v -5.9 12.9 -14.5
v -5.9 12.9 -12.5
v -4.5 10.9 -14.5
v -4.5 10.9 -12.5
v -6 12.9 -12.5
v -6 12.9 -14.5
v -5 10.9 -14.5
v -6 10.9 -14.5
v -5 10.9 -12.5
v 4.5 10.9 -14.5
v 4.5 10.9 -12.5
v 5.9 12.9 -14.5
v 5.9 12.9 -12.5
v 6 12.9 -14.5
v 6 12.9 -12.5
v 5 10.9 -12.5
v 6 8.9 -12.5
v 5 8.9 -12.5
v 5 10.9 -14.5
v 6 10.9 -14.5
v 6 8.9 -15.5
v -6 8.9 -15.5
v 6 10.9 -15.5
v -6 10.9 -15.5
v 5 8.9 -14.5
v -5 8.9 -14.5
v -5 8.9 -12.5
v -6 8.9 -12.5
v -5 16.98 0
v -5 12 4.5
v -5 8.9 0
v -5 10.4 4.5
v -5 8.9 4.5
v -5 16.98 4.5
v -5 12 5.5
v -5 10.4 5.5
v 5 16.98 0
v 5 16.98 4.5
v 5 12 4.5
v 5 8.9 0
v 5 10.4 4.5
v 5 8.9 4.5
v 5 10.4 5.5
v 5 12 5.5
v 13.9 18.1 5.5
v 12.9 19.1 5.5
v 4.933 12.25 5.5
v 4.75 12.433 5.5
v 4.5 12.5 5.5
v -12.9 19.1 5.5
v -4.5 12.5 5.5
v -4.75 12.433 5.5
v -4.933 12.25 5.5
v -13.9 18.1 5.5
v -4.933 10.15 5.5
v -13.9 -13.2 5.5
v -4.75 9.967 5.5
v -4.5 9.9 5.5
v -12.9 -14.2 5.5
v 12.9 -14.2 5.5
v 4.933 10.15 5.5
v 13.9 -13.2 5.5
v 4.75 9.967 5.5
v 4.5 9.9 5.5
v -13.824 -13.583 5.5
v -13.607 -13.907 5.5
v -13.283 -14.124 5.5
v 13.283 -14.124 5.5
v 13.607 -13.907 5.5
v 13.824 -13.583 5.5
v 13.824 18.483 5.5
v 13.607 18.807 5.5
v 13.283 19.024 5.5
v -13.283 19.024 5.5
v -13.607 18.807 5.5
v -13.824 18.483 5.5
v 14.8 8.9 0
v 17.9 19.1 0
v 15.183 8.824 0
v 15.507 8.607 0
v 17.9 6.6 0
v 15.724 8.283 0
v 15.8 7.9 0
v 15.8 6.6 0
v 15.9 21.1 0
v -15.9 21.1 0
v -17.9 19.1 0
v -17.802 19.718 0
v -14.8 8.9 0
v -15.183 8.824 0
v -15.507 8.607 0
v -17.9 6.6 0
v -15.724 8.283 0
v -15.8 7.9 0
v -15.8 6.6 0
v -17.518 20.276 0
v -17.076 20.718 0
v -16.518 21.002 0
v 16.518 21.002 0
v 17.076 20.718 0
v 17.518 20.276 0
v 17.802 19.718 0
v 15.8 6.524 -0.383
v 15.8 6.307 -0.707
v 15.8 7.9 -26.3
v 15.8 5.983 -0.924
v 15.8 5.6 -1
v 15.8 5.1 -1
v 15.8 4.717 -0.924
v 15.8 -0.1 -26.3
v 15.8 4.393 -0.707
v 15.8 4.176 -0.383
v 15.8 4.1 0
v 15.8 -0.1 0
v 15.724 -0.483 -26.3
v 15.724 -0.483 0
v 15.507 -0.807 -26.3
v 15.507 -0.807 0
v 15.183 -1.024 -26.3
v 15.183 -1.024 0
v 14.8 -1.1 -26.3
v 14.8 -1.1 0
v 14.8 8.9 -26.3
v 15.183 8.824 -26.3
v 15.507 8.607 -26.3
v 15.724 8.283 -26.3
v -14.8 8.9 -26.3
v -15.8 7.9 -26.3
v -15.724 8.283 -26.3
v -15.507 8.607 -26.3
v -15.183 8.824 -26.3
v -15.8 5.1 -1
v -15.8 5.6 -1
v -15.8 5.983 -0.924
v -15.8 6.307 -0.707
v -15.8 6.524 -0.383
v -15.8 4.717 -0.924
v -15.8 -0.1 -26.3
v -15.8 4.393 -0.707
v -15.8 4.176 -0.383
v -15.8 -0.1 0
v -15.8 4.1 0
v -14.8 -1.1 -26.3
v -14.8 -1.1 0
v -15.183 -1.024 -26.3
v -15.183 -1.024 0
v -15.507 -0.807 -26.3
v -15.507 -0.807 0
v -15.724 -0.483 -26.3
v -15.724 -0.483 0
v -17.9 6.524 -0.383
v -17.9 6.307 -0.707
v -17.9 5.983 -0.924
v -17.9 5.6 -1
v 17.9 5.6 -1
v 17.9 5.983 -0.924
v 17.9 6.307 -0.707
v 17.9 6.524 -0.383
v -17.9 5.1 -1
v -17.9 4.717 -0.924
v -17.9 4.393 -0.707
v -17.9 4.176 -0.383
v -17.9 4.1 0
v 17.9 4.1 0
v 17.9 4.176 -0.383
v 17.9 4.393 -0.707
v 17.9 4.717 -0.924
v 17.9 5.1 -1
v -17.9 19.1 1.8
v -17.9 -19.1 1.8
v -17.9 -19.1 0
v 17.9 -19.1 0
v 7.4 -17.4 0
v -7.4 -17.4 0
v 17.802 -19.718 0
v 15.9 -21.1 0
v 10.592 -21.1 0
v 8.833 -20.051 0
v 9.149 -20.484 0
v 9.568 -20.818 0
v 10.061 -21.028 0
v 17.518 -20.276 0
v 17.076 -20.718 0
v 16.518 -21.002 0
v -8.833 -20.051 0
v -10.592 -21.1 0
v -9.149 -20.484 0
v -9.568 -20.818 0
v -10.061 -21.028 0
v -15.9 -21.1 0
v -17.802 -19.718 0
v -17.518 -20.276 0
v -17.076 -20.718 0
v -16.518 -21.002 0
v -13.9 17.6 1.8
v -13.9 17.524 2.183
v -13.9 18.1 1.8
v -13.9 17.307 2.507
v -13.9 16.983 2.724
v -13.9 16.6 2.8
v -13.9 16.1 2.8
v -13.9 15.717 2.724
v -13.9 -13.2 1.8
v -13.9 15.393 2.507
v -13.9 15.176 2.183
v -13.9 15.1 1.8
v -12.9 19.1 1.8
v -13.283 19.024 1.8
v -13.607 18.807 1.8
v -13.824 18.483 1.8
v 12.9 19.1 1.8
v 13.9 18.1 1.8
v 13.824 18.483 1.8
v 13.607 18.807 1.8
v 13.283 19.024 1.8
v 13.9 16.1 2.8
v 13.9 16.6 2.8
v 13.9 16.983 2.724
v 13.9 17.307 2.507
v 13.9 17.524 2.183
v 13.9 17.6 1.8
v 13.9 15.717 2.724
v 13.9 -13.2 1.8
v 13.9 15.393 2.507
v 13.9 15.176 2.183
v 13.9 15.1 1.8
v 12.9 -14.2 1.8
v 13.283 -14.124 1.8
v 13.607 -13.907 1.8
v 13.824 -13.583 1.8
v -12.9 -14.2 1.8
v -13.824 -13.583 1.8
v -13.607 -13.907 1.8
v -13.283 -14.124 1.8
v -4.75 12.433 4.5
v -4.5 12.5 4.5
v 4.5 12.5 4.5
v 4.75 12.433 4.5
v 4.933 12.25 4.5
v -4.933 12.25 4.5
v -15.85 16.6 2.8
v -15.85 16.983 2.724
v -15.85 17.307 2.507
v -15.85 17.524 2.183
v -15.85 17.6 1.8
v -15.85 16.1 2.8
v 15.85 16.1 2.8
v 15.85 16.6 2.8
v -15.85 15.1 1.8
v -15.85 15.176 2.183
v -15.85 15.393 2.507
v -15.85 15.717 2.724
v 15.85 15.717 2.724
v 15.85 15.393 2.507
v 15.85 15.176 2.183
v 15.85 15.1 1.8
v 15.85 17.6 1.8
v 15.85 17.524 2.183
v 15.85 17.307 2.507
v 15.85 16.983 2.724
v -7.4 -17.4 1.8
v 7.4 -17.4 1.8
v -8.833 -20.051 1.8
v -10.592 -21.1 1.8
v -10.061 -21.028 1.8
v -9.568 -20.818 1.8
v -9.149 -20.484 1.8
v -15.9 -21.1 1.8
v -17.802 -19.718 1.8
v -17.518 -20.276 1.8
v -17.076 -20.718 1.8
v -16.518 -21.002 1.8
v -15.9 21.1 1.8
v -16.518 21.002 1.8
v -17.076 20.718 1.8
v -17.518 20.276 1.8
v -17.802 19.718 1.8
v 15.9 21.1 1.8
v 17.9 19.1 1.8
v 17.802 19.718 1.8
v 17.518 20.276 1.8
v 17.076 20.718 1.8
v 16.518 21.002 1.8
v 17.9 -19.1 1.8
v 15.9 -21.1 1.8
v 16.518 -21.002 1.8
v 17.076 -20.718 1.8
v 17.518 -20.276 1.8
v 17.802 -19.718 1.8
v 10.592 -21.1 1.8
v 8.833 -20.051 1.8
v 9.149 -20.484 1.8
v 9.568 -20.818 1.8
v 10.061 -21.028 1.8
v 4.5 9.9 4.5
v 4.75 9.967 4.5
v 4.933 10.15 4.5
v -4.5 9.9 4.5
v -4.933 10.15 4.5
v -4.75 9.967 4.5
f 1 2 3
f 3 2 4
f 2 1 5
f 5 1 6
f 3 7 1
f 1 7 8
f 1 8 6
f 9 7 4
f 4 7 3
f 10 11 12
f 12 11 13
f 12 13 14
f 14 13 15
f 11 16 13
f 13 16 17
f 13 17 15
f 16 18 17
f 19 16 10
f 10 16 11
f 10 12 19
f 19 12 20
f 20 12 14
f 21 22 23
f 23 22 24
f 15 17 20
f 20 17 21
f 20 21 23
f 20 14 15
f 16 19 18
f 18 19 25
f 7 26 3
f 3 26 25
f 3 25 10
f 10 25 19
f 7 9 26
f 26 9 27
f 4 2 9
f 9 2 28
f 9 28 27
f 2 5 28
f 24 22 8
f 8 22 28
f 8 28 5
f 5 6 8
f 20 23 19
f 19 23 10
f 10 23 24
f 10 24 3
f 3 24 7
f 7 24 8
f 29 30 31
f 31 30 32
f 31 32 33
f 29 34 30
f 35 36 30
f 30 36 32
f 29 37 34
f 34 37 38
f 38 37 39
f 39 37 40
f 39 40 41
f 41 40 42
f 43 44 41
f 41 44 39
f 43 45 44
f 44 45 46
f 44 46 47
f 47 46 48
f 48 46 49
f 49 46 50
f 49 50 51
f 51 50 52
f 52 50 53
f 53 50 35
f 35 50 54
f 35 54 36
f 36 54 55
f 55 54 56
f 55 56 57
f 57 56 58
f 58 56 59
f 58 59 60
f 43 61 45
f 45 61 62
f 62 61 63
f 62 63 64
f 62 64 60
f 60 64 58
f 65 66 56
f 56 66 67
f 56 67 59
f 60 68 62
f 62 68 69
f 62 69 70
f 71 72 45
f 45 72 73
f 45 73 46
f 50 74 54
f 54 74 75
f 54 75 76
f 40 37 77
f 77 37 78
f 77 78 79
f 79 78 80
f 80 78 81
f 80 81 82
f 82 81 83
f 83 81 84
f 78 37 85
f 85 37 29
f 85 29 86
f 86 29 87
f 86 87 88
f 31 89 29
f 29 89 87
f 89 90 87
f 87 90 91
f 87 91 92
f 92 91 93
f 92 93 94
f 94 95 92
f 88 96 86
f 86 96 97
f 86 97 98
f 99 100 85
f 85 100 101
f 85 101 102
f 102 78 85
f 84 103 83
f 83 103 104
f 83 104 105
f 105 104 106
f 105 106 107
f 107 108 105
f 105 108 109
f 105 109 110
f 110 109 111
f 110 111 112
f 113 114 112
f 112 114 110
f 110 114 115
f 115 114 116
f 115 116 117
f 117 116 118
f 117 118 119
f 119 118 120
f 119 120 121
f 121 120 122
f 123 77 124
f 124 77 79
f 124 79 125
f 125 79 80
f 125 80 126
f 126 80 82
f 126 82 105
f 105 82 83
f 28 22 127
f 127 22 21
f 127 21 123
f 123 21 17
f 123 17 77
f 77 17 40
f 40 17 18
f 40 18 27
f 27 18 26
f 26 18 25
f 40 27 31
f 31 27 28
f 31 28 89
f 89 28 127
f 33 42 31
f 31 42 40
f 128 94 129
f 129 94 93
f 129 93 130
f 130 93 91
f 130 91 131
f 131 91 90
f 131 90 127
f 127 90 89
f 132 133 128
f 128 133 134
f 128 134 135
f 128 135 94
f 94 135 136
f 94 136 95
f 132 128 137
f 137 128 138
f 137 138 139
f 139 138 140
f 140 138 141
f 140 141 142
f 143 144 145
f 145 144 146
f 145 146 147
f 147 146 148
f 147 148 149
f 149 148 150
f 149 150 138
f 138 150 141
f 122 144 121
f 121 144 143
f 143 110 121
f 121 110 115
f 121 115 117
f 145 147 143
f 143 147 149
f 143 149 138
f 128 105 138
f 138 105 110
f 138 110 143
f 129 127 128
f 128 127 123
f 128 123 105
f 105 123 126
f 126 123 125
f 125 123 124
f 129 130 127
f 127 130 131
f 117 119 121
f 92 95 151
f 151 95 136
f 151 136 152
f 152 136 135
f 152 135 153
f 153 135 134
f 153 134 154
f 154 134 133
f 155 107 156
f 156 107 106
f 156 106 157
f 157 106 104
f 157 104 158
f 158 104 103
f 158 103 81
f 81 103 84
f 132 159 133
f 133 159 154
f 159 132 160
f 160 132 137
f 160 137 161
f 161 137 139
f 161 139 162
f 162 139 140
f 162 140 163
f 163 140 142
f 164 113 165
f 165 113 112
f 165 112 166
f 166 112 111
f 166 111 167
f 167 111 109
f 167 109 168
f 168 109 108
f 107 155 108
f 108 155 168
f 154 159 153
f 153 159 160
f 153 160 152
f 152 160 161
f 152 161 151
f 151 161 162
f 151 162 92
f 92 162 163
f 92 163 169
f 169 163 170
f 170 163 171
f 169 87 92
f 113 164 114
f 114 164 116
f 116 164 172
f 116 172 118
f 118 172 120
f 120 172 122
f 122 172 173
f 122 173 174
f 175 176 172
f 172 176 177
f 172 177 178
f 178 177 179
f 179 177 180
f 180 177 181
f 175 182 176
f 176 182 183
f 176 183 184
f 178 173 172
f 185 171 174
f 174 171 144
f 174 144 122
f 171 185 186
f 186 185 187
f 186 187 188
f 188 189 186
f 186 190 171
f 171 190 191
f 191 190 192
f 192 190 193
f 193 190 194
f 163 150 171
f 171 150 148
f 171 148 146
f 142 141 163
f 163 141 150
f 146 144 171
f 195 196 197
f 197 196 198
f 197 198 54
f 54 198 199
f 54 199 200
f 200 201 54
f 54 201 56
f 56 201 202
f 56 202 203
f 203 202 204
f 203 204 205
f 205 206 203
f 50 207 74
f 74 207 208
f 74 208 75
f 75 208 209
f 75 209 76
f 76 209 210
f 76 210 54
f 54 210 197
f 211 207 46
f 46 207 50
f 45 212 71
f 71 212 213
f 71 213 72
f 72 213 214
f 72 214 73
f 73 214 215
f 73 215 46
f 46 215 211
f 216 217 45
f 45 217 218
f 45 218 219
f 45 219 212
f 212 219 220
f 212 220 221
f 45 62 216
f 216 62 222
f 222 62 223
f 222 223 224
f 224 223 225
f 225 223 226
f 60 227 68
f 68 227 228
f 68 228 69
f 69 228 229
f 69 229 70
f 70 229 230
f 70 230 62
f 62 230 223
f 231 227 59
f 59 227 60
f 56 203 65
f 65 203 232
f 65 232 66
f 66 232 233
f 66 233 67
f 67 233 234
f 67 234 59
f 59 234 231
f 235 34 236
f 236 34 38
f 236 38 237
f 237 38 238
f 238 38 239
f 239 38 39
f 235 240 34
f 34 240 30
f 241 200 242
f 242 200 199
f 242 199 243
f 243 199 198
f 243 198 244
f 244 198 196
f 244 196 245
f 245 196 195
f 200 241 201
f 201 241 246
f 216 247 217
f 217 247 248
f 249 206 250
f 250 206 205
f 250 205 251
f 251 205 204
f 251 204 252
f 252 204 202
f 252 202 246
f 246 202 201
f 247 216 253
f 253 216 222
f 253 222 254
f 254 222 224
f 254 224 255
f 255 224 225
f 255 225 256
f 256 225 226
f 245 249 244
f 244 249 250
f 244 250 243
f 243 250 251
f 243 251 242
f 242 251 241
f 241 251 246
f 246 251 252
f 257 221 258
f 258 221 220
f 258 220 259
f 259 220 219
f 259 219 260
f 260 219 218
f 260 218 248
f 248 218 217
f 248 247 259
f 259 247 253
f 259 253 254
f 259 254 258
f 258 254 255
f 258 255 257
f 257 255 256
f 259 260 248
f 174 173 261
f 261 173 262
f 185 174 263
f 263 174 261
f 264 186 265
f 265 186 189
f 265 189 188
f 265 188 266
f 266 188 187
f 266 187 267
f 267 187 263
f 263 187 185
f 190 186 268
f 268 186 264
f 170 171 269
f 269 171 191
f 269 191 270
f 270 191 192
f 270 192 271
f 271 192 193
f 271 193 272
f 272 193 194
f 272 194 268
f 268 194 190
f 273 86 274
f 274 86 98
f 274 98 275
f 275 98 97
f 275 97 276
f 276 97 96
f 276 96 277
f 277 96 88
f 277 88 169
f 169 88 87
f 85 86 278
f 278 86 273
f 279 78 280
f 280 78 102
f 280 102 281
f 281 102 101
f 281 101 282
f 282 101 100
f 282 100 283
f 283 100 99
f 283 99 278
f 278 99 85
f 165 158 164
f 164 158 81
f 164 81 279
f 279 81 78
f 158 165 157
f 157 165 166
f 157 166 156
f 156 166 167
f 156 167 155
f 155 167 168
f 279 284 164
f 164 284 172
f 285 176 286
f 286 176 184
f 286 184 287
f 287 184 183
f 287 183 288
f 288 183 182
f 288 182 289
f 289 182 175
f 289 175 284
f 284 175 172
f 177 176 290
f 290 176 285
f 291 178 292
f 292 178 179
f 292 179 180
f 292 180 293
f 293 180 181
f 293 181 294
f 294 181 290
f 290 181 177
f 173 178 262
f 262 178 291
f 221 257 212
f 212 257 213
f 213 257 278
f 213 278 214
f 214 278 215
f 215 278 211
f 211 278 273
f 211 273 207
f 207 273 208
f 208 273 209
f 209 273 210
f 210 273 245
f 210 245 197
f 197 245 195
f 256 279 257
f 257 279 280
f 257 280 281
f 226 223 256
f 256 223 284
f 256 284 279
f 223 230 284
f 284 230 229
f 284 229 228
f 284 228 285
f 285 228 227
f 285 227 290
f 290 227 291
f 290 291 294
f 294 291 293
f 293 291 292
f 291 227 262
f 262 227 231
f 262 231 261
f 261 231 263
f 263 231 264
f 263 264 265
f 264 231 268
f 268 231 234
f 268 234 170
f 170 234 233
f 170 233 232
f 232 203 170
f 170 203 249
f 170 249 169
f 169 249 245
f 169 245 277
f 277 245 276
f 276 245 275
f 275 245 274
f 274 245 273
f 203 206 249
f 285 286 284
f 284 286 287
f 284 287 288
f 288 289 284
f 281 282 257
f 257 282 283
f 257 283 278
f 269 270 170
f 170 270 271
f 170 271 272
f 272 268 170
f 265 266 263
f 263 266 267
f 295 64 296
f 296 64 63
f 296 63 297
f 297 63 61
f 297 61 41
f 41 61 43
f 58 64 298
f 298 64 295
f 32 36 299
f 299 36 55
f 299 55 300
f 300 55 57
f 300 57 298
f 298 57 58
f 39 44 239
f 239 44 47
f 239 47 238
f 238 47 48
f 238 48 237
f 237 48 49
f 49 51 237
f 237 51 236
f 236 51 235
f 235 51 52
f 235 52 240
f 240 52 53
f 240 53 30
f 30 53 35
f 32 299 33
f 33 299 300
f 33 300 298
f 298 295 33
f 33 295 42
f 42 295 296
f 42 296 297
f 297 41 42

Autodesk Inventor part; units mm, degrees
ref_plane "YZ Plane" through (0, 0, 0) normal (1, 0, 0) x (0, 1, 0)
ref_plane "XZ Plane" through (0, 0, 0) normal (0, 1, 0) x (-1, 0, 0)
ref_plane "XY Plane" through (0, 0, 0) normal (0, 0, 1) x (1, 0, 0)
sketch "Sketch1" plane through (0, 0, 0) normal (0, 0, 1) x (1, 0, 0)
  line L0 (17.9, -19.1) -> (17.9, 19.1)
  line L1 (15.9, 21.1) -> (-15.9, 21.1)
  line L2 (-17.9, 19.1) -> (-17.9, -19.1)
  line L3 (-15.9, -21.1) -> (-10.5924, -21.1)
  line L4 (17.9, -21.1) -> (-17.9, 21.1) construction
  line L5 (17.9, 21.1) -> (-17.9, -21.1) construction
  line L6 (-7.4, -17.4) -> (7.4, -17.4)
  line L7 (-7.4, -17.4) -> (-8.833, -20.051)
  line L8 (7.4, -17.4) -> (8.833, -20.051)
  line L9 (10.5924, -21.1) -> (15.9, -21.1)
  line L10 (-9.4, -21.1) -> (9.4, -21.1)
  arc A0 (-15.9, 21.1) -> (-17.9, 19.1) centre (-15.9, 19.1) ccw
  arc A1 (17.9, 19.1) -> (15.9, 21.1) centre (15.9, 19.1) ccw
  arc A2 (15.9, -21.1) -> (17.9, -19.1) centre (15.9, -19.1) ccw
  arc A3 (8.833, -20.051) -> (10.5924, -21.1) centre (10.5924, -19.1) ccw
  arc A4 (-10.5924, -21.1) -> (-8.833, -20.051) centre (-10.5924, -19.1) ccw
  arc A5 (-17.9, -19.1) -> (-15.9, -21.1) centre (-15.9, -19.1) ccw
  point P0 (0, 0)
  dimension "d0" = 35.8
  dimension "d1" = 42.2
  dimension "d2" = 38.5
  dimension "d3" = 10.5
  dimension "d4" = 10.5
  dimension "d5" = 8.5
  dimension "d6" = 8.5
  dimension "d7" = 2
extrude "Extrusion1" add sketch "Sketch1" along normal blind 1.8
sketch "Sketch2" plane through (0, 0, 1.8) normal (0, 0, 1) x (1, 0, 0)
  line L0 (-15.85, 15.1) -> (15.85, 15.1)
  line L1 (15.85, 15.1) -> (15.85, 17.6)
  line L2 (15.85, 17.6) -> (-15.85, 17.6)
  line L3 (-15.85, 17.6) -> (-15.85, 15.1)
  line L4 (-15.85, 15.1) -> (15.85, 17.6) construction
  line L5 (15.85, 15.1) -> (-15.85, 17.6) construction
  line L6 (15.9, 21.1) -> (-15.9, 21.1) projected
  point P0 (0, 0)
  point P1 (0, 16.35)
  point P2 (0, 16.35)
  point P3 (15.85, 16.35)
  point P4 (-15.85, 16.35)
  dimension "d10" = 2.5
  dimension "d11" = 6
  dimension "d12" = 31.7
extrude "Extrusion2" add sketch "Sketch2" along normal blind 1
fillet "Fillet1" radius 1 2 edges at (0, 17.6, 2.8) (0, 15.1, 2.8)
sketch "Sketch3" plane through (0, 0, 1.8) normal (0, 0, 1) x (1, 0, 0)
  line L0 (-12.9, 19.1) -> (12.9, 19.1)
  line L1 (13.9, 18.1) -> (13.9, -13.2)
  line L2 (12.9, -14.2) -> (-12.9, -14.2)
  line L3 (-13.9, -13.2) -> (-13.9, 18.1)
  line L4 (15.9, 21.1) -> (-15.9, 21.1) projected
  line L5 (-13.9, 2.9131) -> (-17.9, 2.9131)
  line L6 (-17.9, 19.1) -> (-17.9, -19.1) projected
  line L7 (13.9, 2.9131) -> (17.9, 2.9131)
  line L8 (17.9, -19.1) -> (17.9, 19.1) projected
  arc A0 (-12.9, 19.1) -> (-13.9, 18.1) centre (-12.9, 18.1) ccw
  arc A1 (13.9, 18.1) -> (12.9, 19.1) centre (12.9, 18.1) ccw
  arc A2 (12.9, -14.2) -> (13.9, -13.2) centre (12.9, -13.2) ccw
  arc A3 (-13.9, -13.2) -> (-12.9, -14.2) centre (-12.9, -13.2) ccw
  point P0 (0, 0)
  point P1 (13.9, -14.2)
  point P2 (13.9, 19.1)
  point P3 (-13.9, -14.2)
  dimension "d16" = 27.8
  dimension "d17" = 33.3
  dimension "d18" = 2
  dimension "d19" = 1
extrude "Extrusion3" add sketch "Sketch3" along normal blind 3.7
sketch "Sketch4" plane through (0, 0, 0) normal (0, 0, -1) x (-1, 0, 0)
  line L0 (-17.9, -19.1) -> (-17.9, 19.1) projected
  line L1 (17.9, 19.1) -> (17.9, -19.1) projected
  line L2 (-17.9, 6.6) -> (17.9, 6.6)
  line L3 (17.9, 6.6) -> (17.9, 4.1)
  line L4 (17.9, 4.1) -> (-17.9, 4.1)
  line L5 (-17.9, 4.1) -> (-17.9, 6.6)
  line L6 (-15.9, 21.1) -> (15.9, 21.1) projected
  point P0 (0, 0)
  dimension "d22" = 2.5
  dimension "d23" = 17
extrude "Extrusion4" add sketch "Sketch4" along normal blind 1
fillet "Fillet2" radius 1 2 edges at (0, 6.6, -1) (0, 4.1, -1)
sketch "Sketch5" plane through (0, 0, 0) normal (0, 0, -1) x (-1, 0, 0)
  line L0 (-14.8, 8.9) -> (14.8, 8.9)
  line L1 (15.8, 7.9) -> (15.8, -0.1)
  line L2 (14.8, -1.1) -> (-14.8, -1.1)
  line L3 (-15.8, -0.1) -> (-15.8, 7.9)
  line L4 (-15.9, 21.1) -> (15.9, 21.1) projected
  line L5 (-17.9, 6.6) -> (-17.9, 19.1) projected
  line L6 (17.9, 4.1) -> (17.9, -19.1) projected
  arc A0 (-15.8, -0.1) -> (-14.8, -1.1) centre (-14.8, -0.1) ccw
  arc A1 (-14.8, 8.9) -> (-15.8, 7.9) centre (-14.8, 7.9) ccw
  arc A2 (15.8, 7.9) -> (14.8, 8.9) centre (14.8, 7.9) ccw
  arc A3 (14.8, -1.1) -> (15.8, -0.1) centre (14.8, -0.1) ccw
  point P0 (0, 0)
  point P1 (0, 8.9)
  dimension "d27" = 22.2
  dimension "d28" = 2.1
  dimension "d29" = 10
  dimension "d30" = 2.1
  dimension "d31" = 1
extrude "Extrusion5" add sketch "Sketch5" along normal blind 26.3
sketch "Sketch6" plane through (0, 0, 0) normal (0, 0, -1) x (-1, 0, 0)
  line L0 (-5, 16.9799) -> (5, 16.9799)
  line L1 (5, 16.9799) -> (5, 8.9)
  line L2 (5, 8.9) -> (-5, 8.9)
  line L3 (-5, 8.9) -> (-5, 16.9799)
  line L4 (14.8, 8.9) -> (-14.8, 8.9) projected
  line L5 (5, 16.9799) -> (17.9, 16.9799)
  line L6 (17.9, 19.1) -> (17.9, 6.6) projected
  line L7 (-5, 16.9799) -> (-17.9, 16.9799)
  line L8 (-17.9, -19.1) -> (-17.9, 19.1) projected
  point P0 (0, 0)
  point P1 (-5, 12.94)
  dimension "d34" = 10
extrude "Extrusion6" cut sketch "Sketch6" against normal blind 4.5
sketch "Sketch7" plane through (-14.8, 8.9, -26.3) normal (0, 1, 0) x (1, 0, 0)
  line L0 (9.8, -30.8) -> (19.8, -30.8) projected
  line L1 (14.8, -30.8) -> (14.8, -11.8)
  line L2 (8.8, -11.8) -> (20.8, -11.8)
  line L3 (20.8, -11.8) -> (20.8, -10.8)
  line L4 (20.8, -10.8) -> (8.8, -10.8)
  line L5 (8.8, -10.8) -> (8.8, -11.8)
  line L6 (20.8, -11.8) -> (20.8, -13.8)
  line L7 (20.8, -13.8) -> (19.8, -13.8)
  line L8 (19.8, -13.8) -> (19.8, -11.8)
  line L9 (8.8, -11.8) -> (8.8, -13.8)
  line L10 (8.8, -13.8) -> (9.8, -13.8)
  line L11 (9.8, -13.8) -> (9.8, -11.8)
  point P0 (14.8, -26.3)
  dimension "d37" = 19
  dimension "d38" = 12
  dimension "d39" = 1
  dimension "d40" = 1
  dimension "d41" = 2
extrude "Extrusion7" add sketch "Sketch7" along normal blind 2
sketch "Sketch8" plane through (-14.8, 10.9, -26.3) normal (0, 1, 0) x (1, 0, 0)
  line L0 (9.8, -11.8) -> (19.8, -11.8) projected
  line L1 (20.8, -13.8) -> (20.8, -10.8) projected
  line L2 (19.8, -11.8) -> (20.8, -11.8)
  line L3 (20.8, -11.8) -> (20.8, -13.8)
  line L4 (20.8, -13.8) -> (19.8, -13.8)
  line L5 (19.8, -13.8) -> (19.8, -11.8)
  line L6 (9.8, -11.8) -> (9.8, -13.8) projected
  line L7 (8.8, -13.8) -> (8.8, -10.8) projected
  line L8 (9.8, -11.8) -> (8.8, -11.8)
  line L9 (8.8, -11.8) -> (8.8, -13.8)
  line L10 (8.8, -13.8) -> (9.8, -13.8)
  line L11 (9.8, -13.8) -> (9.8, -11.8)
  point P0 (14.8, -26.3)
extrude "Extrusion8" add sketch "Sketch8" along normal blind 2
sketch "Sketch9" plane through (5, 8.9, -14.5) normal (-1, 0, 0) x (0, 0, 1)
  line L0 (0, 2) -> (0, 4) projected
  line L1 (2, 0) -> (2, 4) projected
  line L2 (0, 4) -> (2, 4)
  line L3 (2, 4) -> (2, 2)
  line L4 (2, 2) -> (0, 2)
  line L5 (0, 2) -> (0, 4)
  point P0 (14.5, -8.9)
extrude "Extrusion9" add sketch "Sketch9" along normal blind 0.5
chamfer "Chamfer1" distance 2 angle 35 1 edges at (4.5, 12.9, -13.5) measured on face at (4.5, 11.5667, -13.8333)
mirror "Mirror1" about plane through (0, 0, 0) normal (1, 0, 0) of "Extrusion9", "Chamfer1"
sketch "Sketch10" plane through (0, 0, 4.5) normal (0, 0, -1) x (-1, 0, 0)
  line L0 (-4.5, 9.9) -> (4.5, 9.9)
  line L1 (5, 10.4) -> (5, 12)
  line L2 (4.5, 12.5) -> (-4.5, 12.5)
  line L3 (-5, 12) -> (-5, 10.4)
  line L4 (5, 8.9) -> (-5, 8.9) projected
  line L5 (-5, 8.9) -> (-5, 16.9799) projected
  arc A0 (-5, 10.4) -> (-4.5, 9.9) centre (-4.5, 10.4) ccw
  arc A1 (-4.5, 12.5) -> (-5, 12) centre (-4.5, 12) ccw
  arc A2 (5, 12) -> (4.5, 12.5) centre (4.5, 12) ccw
  arc A3 (4.5, 9.9) -> (5, 10.4) centre (4.5, 10.4) ccw
  point P0 (0, 0)
  point P1 (-5, 11.2)
  dimension "d51" = 1
  dimension "d52" = 10
  dimension "d53" = 0.5
  dimension "d54" = 2.6
extrude "Extrusion10" cut sketch "Sketch10" against normal blind 2
properties part number "PS2 USB C PD Mount"
